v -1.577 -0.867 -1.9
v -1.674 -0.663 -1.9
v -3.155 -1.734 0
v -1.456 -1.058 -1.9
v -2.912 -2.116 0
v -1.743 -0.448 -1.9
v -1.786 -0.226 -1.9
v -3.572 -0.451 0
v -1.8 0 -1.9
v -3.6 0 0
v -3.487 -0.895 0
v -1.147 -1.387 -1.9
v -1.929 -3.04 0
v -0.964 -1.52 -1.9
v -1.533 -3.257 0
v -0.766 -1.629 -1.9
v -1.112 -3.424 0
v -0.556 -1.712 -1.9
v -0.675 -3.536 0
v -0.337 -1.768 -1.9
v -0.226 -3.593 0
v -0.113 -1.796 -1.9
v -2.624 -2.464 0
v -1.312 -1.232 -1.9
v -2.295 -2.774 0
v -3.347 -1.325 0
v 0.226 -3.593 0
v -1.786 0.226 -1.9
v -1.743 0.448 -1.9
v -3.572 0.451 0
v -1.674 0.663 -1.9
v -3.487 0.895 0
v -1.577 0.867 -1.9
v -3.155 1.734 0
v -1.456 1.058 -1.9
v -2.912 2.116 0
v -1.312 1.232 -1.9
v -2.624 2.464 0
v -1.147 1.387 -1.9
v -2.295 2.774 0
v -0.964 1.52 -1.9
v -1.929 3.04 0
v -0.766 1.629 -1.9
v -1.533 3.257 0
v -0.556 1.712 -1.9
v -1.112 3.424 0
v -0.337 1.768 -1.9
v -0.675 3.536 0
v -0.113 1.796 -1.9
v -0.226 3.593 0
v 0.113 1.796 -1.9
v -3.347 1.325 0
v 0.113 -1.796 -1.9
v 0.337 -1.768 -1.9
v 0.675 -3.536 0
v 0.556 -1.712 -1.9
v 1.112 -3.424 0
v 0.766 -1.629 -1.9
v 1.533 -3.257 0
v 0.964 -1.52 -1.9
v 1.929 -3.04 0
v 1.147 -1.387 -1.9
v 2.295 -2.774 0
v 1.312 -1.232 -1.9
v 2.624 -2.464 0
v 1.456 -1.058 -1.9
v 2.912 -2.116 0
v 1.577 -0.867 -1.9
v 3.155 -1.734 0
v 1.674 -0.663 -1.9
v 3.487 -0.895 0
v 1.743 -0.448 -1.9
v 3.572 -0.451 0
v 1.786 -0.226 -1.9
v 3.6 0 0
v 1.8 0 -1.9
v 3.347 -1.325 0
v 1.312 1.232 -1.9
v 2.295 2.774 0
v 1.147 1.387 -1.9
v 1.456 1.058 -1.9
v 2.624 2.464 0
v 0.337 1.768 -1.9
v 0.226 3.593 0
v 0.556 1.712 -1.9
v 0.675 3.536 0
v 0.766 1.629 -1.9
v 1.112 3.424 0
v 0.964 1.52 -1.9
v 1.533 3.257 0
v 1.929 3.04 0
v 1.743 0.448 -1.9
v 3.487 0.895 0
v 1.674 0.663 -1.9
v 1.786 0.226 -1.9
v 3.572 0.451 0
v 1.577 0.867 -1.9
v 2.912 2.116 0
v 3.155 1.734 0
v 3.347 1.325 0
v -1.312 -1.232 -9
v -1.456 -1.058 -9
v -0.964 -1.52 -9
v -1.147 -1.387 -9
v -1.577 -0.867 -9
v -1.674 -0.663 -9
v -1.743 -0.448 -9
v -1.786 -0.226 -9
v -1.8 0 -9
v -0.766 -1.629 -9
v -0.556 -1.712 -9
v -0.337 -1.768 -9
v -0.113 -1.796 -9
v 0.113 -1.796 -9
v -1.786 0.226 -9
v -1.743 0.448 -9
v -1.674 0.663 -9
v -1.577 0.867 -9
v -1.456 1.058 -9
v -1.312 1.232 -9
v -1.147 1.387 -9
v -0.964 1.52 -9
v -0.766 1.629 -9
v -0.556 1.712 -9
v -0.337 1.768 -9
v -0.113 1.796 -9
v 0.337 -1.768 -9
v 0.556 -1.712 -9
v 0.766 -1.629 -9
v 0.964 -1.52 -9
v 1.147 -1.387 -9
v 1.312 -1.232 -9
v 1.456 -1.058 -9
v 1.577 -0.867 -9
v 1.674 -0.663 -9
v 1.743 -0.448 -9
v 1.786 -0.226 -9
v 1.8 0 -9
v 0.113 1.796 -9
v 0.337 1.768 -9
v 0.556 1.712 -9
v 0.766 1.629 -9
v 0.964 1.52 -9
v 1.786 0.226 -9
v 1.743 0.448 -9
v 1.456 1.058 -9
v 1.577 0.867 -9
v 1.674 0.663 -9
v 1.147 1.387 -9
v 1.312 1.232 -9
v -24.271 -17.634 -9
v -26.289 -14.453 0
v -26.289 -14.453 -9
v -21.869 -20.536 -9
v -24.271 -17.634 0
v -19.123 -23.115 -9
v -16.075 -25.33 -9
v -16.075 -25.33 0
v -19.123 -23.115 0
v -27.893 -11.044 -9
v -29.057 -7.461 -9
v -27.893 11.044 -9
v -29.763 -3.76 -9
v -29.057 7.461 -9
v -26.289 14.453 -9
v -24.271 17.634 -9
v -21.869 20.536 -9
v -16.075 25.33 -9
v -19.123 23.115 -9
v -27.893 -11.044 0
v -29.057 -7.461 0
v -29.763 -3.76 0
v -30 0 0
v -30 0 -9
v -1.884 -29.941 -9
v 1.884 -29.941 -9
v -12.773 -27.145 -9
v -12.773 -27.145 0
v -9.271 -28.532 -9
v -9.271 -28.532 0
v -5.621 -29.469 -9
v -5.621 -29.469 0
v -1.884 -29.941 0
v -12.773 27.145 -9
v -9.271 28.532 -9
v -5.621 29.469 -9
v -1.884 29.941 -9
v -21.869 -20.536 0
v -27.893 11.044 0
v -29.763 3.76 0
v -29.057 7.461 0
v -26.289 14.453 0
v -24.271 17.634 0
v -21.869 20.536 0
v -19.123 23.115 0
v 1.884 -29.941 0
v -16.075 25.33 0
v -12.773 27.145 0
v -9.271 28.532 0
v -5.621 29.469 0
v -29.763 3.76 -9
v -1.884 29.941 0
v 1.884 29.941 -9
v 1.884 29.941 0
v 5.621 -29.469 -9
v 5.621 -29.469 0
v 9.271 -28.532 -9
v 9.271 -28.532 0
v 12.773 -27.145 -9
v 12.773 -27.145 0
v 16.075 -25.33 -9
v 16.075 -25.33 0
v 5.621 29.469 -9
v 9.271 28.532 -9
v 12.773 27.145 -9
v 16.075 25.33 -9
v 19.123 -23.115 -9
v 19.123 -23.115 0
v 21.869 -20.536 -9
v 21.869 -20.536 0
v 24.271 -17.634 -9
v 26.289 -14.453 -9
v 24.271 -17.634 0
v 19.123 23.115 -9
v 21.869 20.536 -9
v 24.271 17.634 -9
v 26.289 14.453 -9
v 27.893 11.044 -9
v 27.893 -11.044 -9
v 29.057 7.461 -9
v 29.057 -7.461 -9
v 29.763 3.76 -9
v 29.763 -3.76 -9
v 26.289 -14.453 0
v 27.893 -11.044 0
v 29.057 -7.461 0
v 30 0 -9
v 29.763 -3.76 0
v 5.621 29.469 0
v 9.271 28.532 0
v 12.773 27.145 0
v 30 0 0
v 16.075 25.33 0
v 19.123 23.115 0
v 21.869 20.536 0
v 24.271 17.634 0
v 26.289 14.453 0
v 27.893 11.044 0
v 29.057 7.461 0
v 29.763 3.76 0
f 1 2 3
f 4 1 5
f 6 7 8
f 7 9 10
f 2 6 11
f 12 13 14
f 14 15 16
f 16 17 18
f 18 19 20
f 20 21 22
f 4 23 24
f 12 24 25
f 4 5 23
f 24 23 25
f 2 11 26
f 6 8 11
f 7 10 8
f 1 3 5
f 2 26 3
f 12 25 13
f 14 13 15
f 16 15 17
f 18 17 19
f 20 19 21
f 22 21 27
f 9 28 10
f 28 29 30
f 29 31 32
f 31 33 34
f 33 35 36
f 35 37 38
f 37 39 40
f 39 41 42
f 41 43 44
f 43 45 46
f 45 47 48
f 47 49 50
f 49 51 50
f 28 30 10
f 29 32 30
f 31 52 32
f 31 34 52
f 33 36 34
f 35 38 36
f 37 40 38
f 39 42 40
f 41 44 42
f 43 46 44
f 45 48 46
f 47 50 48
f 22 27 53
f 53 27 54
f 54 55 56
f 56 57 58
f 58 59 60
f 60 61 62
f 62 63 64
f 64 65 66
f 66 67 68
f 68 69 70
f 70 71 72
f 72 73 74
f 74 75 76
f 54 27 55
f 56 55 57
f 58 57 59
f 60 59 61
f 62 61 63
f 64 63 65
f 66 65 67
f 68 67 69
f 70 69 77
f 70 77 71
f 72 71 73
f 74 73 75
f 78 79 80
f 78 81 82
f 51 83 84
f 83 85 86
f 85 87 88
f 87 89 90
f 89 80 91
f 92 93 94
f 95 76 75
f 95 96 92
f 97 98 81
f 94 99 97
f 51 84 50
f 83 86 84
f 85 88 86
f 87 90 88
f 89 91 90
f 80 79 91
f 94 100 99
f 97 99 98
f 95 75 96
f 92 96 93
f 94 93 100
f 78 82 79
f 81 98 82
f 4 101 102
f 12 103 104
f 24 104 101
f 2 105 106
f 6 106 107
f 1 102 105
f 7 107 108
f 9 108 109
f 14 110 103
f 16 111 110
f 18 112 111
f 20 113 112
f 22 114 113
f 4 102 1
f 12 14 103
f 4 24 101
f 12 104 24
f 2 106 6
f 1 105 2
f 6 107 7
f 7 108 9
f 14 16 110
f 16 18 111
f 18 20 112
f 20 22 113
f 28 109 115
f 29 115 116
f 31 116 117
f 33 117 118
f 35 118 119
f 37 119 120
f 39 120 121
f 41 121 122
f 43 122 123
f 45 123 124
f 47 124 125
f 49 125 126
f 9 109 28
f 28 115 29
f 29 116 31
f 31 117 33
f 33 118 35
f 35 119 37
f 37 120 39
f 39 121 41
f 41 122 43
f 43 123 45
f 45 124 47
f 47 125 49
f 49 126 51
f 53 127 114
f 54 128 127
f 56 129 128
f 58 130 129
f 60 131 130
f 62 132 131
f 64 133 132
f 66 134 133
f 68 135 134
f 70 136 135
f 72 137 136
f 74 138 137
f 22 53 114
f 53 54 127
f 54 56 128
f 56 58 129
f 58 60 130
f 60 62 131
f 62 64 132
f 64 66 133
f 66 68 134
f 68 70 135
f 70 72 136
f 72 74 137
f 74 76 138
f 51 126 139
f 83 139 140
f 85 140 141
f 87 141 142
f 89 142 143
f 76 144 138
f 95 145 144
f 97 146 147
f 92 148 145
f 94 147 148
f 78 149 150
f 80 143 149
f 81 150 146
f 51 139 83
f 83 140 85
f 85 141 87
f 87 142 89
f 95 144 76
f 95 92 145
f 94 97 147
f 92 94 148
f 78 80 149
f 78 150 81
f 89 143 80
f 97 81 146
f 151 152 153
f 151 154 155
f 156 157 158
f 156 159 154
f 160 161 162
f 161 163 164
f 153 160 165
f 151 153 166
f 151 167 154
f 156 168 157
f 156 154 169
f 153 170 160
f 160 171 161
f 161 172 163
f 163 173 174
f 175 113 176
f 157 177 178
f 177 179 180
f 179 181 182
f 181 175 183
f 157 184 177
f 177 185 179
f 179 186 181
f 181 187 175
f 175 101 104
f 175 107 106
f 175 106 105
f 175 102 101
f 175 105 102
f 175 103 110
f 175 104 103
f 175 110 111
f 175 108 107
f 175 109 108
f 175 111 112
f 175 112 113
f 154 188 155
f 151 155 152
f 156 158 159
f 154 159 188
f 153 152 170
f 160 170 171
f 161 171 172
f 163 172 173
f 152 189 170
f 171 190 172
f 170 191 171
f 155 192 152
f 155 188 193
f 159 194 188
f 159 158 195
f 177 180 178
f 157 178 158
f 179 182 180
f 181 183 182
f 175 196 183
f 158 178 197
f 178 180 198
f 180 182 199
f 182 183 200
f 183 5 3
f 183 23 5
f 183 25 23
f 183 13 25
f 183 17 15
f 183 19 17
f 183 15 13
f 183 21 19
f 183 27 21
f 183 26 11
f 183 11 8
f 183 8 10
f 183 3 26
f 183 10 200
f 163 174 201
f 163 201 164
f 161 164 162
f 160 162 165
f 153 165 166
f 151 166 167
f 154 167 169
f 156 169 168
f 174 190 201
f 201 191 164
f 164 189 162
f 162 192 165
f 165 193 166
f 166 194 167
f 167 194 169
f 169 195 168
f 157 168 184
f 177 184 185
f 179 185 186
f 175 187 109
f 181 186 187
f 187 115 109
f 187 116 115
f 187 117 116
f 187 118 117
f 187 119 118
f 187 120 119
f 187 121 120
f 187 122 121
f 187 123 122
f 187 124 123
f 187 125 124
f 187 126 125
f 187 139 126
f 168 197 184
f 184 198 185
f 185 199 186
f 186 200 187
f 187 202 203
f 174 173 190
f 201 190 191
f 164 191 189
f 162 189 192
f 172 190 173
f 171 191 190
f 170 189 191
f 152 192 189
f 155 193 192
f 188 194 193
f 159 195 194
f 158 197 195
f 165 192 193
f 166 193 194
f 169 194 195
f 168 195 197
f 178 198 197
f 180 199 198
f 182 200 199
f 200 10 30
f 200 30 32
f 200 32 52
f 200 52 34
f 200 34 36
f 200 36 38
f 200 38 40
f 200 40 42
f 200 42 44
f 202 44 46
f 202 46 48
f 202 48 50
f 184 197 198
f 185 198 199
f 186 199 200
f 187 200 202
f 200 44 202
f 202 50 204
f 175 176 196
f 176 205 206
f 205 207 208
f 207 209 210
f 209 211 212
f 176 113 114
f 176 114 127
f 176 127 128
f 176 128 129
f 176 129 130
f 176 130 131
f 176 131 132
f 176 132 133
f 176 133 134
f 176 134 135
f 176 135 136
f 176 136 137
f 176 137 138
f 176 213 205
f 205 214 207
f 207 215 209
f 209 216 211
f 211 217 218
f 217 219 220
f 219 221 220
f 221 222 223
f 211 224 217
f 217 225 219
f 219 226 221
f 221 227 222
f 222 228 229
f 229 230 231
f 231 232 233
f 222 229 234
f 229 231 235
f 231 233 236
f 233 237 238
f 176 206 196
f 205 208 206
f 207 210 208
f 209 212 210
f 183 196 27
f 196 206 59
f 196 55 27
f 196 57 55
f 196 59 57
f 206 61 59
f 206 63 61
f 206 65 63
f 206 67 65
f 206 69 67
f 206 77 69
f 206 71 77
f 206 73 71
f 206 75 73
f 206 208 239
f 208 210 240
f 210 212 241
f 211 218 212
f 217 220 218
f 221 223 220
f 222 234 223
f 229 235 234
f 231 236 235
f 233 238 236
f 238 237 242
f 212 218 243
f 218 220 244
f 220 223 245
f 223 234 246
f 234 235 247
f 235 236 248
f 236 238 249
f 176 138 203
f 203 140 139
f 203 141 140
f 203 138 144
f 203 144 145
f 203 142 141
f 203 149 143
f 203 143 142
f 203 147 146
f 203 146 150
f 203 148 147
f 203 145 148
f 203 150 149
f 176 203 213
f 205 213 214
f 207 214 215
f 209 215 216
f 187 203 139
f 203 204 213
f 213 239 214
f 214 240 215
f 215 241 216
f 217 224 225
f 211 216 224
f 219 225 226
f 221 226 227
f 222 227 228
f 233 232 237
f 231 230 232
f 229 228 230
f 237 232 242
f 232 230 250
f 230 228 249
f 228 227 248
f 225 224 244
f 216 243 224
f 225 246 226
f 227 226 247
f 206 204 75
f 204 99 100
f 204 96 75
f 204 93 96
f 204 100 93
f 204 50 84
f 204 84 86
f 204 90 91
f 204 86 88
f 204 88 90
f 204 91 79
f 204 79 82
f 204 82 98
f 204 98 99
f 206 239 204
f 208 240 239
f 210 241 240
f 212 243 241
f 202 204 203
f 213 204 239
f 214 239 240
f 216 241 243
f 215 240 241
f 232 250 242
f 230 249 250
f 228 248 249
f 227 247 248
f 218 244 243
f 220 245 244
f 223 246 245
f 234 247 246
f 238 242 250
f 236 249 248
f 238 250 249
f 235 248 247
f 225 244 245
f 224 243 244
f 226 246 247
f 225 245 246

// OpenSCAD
$fn = 50;


difference() {
	union() {
		translate(v = [0, 0, -9.0000000000]) {
			cylinder(h = 9, r = 30.0000000000);
		}
	}
	union() {
		translate(v = [0, 0, 0]) {
			rotate(a = [0, 0, 0]) {
				difference() {
					union() {
						translate(v = [0, 0, -12.0000000000]) {
							cylinder(h = 12, r = 1.5000000000);
						}
						translate(v = [0, 0, -1.9000000000]) {
							cylinder(h = 1.9000000000, r1 = 1.8000000000, r2 = 3.6000000000);
						}
						translate(v = [0, 0, -12.0000000000]) {
							cylinder(h = 12, r = 1.8000000000);
						}
						translate(v = [0, 0, -12.0000000000]) {
							cylinder(h = 12, r = 1.5000000000);
						}
					}
					union();
				}
			}
		}
	}
}
